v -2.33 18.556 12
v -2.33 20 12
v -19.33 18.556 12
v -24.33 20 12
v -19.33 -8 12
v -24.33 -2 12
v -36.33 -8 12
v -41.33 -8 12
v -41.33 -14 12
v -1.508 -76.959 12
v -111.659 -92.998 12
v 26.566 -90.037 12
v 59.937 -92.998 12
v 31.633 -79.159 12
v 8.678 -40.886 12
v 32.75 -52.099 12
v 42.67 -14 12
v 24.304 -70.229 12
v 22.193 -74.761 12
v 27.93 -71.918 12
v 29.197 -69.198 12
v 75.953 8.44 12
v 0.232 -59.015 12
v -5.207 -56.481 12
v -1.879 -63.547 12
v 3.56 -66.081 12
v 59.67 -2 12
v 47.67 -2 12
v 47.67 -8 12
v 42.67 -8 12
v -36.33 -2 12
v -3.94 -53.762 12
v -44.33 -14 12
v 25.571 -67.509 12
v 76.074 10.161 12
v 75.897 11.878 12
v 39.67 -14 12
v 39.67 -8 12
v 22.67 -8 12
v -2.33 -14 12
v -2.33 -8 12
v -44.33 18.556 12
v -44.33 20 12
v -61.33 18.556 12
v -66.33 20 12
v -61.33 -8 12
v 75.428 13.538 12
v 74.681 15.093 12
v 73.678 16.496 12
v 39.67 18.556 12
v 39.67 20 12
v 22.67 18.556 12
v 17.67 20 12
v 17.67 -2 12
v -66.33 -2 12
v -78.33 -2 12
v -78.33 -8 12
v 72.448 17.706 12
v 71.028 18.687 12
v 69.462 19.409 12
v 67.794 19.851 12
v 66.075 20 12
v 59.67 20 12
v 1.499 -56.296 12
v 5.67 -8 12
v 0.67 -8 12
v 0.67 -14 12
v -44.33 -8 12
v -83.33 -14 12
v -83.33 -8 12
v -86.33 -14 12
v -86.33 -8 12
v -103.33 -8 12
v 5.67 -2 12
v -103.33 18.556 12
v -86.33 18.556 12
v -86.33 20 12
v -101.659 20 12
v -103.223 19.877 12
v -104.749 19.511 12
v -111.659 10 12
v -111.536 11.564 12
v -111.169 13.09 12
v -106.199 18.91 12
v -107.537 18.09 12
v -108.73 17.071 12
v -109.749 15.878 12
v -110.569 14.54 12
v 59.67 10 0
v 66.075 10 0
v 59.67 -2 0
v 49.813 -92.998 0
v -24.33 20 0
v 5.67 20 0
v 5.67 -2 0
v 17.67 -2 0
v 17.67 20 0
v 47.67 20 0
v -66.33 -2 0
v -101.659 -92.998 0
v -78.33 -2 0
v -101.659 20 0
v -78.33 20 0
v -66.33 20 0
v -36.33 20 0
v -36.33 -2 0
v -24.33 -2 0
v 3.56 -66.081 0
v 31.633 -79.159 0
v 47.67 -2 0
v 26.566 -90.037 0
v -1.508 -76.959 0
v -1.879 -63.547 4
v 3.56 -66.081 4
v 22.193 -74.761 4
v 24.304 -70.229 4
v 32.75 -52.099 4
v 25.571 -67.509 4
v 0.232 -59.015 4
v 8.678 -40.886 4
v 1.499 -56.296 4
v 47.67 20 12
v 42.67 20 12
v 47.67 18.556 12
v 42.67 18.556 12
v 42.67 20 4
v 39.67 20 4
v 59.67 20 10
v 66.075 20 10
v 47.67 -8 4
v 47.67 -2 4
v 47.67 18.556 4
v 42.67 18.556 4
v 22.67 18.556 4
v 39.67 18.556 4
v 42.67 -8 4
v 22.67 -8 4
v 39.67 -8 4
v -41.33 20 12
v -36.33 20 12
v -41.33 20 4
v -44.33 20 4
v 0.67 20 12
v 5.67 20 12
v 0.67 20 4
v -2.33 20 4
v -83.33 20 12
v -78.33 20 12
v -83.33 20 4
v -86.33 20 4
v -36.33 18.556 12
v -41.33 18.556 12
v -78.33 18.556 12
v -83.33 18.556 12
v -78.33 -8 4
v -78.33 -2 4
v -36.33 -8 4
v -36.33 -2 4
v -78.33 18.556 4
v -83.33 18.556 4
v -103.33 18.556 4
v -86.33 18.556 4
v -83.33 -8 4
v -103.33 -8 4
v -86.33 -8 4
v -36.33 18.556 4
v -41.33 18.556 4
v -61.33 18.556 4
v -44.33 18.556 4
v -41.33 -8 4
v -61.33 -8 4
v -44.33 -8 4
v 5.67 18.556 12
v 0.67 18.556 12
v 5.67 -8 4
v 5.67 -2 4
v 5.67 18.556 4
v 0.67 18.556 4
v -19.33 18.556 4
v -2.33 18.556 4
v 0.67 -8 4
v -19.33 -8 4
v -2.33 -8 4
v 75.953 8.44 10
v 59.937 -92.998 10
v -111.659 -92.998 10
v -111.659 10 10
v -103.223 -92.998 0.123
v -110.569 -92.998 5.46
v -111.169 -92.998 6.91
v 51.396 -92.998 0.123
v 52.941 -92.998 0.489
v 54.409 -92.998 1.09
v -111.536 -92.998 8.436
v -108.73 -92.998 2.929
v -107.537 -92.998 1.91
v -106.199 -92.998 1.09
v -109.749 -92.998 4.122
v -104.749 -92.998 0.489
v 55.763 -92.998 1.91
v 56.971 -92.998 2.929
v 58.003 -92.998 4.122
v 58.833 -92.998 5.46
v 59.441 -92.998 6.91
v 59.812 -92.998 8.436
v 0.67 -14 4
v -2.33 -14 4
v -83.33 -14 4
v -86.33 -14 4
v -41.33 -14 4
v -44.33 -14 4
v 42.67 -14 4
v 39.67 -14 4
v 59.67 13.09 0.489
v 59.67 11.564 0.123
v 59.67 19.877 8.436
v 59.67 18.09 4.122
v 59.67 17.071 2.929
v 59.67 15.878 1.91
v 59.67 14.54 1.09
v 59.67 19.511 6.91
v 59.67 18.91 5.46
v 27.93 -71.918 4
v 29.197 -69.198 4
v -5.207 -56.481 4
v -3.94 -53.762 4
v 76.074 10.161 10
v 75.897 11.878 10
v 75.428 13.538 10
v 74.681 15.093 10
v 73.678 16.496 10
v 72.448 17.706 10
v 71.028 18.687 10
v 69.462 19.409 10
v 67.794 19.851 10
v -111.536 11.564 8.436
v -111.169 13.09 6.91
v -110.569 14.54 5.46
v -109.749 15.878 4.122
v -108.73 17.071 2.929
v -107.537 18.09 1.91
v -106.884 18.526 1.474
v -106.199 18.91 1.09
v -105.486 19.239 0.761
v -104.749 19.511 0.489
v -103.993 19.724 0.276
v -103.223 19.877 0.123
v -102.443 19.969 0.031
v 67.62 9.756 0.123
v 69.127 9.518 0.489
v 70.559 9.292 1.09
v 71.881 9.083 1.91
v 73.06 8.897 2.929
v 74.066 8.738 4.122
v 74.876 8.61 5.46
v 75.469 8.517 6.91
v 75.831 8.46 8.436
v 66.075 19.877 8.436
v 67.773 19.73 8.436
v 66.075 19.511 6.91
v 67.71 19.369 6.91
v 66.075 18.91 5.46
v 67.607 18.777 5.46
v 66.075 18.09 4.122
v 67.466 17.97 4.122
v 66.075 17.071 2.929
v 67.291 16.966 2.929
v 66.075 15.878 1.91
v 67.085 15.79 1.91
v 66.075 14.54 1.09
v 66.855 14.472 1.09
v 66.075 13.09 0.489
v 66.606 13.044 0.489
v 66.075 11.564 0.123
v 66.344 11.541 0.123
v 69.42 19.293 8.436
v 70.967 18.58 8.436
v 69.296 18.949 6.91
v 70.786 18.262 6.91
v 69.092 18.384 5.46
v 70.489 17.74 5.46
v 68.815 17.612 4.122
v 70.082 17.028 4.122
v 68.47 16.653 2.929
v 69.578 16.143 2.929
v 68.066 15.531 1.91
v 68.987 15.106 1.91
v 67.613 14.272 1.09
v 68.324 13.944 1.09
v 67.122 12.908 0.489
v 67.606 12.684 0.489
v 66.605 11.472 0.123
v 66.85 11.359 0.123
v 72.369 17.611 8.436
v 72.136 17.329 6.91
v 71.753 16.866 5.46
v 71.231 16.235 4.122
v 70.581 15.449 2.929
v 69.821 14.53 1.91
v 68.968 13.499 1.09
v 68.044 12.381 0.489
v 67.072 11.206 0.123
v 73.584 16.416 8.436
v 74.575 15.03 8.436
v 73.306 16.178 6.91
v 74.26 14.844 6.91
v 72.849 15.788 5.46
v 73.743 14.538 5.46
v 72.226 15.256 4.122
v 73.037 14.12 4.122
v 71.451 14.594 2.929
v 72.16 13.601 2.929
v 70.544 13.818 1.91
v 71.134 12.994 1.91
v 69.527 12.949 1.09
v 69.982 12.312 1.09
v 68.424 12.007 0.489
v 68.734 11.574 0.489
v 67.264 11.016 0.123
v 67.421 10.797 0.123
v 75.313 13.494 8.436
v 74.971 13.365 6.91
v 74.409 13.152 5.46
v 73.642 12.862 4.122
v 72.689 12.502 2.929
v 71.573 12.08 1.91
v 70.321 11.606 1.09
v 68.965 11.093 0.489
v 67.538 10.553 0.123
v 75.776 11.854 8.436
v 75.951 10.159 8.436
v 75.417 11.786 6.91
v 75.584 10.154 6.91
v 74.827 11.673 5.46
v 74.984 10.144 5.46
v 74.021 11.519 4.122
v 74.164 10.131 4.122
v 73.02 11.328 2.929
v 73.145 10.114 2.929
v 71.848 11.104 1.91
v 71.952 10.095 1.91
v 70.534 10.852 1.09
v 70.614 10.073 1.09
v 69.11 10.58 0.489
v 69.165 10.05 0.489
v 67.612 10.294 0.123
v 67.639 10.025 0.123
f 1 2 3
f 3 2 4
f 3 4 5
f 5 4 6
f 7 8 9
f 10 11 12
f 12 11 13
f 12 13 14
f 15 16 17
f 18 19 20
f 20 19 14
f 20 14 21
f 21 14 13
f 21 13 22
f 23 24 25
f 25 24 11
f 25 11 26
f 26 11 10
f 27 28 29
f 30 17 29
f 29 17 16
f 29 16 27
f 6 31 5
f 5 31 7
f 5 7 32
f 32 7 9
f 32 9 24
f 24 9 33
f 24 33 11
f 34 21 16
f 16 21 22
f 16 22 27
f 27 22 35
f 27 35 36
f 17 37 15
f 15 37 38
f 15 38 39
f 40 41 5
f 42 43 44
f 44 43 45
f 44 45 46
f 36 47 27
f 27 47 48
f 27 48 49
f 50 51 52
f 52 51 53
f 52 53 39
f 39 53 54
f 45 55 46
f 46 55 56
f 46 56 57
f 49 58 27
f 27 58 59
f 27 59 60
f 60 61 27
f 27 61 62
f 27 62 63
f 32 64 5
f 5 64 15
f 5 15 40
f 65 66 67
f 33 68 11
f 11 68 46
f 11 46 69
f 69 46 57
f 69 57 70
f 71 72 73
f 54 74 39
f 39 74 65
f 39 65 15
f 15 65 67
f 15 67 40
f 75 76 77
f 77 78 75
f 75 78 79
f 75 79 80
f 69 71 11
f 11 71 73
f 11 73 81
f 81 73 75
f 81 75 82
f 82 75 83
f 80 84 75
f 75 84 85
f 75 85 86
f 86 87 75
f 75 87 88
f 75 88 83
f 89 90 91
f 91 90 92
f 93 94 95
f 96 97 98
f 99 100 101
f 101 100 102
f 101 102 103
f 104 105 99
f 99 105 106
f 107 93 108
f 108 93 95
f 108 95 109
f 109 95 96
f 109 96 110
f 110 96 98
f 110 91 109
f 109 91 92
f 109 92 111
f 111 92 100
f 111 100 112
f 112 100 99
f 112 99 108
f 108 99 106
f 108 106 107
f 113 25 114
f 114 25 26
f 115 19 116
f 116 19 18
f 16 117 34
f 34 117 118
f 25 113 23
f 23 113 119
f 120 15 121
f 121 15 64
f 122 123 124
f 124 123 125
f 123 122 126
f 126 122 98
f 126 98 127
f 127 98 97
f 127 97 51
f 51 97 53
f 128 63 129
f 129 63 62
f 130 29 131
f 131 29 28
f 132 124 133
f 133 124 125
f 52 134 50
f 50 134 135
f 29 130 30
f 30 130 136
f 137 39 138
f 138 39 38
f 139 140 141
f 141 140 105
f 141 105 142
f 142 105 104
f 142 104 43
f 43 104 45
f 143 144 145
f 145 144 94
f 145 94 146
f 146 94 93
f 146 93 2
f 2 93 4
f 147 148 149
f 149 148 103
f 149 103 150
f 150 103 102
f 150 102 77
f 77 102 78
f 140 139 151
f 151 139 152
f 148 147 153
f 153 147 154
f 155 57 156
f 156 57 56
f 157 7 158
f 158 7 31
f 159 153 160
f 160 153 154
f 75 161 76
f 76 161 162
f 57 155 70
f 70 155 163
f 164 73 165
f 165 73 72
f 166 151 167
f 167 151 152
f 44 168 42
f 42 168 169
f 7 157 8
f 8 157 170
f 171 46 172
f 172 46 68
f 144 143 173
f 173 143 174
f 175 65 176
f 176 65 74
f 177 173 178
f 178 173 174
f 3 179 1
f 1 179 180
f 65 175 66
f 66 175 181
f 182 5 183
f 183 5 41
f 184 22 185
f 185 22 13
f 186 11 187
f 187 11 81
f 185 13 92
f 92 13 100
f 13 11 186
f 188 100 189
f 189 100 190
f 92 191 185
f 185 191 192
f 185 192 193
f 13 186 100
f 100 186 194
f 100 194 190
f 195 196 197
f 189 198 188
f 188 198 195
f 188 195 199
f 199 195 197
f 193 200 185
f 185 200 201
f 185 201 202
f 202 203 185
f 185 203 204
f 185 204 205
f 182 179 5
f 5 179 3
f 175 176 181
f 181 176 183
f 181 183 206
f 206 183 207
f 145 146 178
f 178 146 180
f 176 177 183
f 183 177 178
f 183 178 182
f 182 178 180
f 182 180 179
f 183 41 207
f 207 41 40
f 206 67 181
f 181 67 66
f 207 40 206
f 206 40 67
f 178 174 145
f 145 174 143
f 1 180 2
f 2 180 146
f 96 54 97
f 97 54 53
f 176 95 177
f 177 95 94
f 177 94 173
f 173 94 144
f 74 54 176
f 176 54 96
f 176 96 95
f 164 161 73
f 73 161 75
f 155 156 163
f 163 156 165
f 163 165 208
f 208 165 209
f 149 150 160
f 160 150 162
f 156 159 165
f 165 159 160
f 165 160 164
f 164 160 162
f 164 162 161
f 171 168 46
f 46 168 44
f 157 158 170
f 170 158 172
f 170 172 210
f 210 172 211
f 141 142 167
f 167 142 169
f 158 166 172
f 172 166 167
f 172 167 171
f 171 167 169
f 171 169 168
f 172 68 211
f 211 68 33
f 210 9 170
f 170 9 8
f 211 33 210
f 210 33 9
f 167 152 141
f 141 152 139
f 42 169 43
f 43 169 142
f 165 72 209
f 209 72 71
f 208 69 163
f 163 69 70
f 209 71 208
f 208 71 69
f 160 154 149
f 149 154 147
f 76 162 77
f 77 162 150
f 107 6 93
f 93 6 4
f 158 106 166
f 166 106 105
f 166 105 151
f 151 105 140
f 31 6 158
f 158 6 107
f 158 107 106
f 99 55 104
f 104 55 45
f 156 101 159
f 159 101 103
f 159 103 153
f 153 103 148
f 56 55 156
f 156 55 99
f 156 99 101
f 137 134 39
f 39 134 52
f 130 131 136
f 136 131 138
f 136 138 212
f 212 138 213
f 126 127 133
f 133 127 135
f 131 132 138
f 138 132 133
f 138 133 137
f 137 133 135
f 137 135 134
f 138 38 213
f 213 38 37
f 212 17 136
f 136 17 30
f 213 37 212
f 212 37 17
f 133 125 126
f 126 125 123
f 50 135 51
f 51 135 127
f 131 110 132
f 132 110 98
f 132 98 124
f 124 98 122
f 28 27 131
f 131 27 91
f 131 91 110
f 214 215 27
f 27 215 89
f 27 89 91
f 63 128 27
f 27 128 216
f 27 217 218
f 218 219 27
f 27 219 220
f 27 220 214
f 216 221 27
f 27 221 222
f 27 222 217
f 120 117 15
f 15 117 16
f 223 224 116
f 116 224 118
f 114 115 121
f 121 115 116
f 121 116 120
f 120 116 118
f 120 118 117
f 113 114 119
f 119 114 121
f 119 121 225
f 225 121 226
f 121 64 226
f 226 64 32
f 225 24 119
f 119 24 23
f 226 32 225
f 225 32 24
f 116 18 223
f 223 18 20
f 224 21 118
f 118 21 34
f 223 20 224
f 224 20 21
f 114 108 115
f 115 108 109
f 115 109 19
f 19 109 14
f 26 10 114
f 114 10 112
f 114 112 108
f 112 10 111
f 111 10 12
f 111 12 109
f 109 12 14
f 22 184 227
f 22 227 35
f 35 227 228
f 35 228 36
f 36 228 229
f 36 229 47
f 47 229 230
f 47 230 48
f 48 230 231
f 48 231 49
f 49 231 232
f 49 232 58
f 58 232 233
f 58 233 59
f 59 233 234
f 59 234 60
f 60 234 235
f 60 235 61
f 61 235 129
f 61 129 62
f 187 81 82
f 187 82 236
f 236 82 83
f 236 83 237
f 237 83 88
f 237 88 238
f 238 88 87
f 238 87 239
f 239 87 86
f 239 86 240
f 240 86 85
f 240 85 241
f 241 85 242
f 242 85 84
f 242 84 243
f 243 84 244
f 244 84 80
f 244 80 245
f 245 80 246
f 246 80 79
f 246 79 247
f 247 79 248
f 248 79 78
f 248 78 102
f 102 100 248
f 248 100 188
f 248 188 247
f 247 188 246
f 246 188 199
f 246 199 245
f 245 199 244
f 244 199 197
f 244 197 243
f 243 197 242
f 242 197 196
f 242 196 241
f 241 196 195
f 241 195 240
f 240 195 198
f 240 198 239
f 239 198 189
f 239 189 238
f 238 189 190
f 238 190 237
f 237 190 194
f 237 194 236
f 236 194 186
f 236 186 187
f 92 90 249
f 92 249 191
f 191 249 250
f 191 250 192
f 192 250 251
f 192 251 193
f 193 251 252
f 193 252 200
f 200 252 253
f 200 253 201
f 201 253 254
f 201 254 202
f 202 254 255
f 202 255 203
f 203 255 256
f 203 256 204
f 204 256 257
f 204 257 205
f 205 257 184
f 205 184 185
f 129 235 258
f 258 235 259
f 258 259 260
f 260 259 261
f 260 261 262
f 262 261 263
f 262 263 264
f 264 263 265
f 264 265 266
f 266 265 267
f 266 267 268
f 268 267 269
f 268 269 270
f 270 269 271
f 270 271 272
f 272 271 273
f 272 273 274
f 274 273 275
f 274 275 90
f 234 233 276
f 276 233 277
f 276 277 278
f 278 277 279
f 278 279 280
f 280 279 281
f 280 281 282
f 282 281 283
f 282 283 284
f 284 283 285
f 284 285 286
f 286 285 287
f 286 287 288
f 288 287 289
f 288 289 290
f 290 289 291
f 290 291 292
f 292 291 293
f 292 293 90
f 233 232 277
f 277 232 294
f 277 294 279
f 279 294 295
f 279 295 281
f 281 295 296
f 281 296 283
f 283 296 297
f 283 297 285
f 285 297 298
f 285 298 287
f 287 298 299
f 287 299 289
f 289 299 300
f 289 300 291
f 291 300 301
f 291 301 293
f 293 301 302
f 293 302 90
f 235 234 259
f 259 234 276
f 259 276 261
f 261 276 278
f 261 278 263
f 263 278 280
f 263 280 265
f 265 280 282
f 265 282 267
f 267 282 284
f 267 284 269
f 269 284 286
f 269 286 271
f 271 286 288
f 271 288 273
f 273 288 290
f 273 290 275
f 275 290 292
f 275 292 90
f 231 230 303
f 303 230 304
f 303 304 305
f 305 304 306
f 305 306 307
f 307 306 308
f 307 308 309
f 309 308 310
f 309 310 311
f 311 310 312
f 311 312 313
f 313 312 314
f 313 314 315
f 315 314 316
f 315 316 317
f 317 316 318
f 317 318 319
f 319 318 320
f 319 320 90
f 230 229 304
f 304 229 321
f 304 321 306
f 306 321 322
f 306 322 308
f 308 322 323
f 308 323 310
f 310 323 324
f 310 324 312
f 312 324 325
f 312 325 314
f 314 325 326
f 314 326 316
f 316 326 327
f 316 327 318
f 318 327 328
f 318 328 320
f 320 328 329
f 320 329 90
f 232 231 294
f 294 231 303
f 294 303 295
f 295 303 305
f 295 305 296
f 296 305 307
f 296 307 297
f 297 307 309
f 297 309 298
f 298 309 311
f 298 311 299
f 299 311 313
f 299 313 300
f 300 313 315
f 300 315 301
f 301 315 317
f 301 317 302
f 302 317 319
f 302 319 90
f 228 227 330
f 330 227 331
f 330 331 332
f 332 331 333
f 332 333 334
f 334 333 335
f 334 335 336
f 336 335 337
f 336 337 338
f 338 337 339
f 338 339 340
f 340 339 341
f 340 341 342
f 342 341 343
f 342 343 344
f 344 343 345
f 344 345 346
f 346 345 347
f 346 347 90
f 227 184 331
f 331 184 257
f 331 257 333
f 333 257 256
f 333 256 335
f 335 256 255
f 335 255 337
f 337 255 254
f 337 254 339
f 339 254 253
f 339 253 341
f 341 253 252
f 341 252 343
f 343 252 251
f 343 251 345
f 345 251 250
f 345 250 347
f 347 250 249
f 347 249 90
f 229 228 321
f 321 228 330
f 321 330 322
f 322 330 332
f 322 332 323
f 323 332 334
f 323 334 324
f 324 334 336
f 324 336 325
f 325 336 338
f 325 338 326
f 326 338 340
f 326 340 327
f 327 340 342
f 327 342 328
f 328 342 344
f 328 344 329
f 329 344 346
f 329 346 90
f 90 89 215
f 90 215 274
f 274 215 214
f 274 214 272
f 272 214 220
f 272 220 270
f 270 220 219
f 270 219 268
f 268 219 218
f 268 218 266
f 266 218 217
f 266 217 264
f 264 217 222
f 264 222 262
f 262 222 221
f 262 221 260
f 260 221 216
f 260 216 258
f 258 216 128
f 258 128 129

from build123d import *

# Parameters (mm, degrees)
BOSS_EXTRUDE1_DEPTH       = 12
SKETCH2_W                 = 25
SKETCH2_H                 = 26.555679241
CUT_EXTRUDE2_DEPTH        = 8
CUT_EXTRUDE8_START        = 4
SKETCH3_W                 = 3
SKETCH3_H                 = 36.555679241
CUT_EXTRUDE8_DEPTH        = 10
SKETCH5_W                 = 12
SKETCH5_H                 = 30.970366581
CUT_EXTRUDE10_DEPTH       = 18
LPATTERN1_COUNT           = 3
LPATTERN1_PITCH           = 42
LPATTERN2_COUNT           = 2
LPATTERN2_PITCH           = 42
CRVPATTERN1_START         = -70.397064899
CRVPATTERN1_OUTLINE_W     = 20.555679241
CRVPATTERN1_OUTLINE_H     = 8
CRVPATTERN1_DEPTH         = 37
CRVPATTERN1_2_DEPTH       = 12
CRVPATTERN1_START_2       = -58.397064899
CRVPATTERN1_3_OUTLINE_W   = 6
CRVPATTERN1_3_OUTLINE_H   = 8
CRVPATTERN1_3_DEPTH       = 25
CRVPATTERN1_START_3       = -53.397064899
CRVPATTERN1_4_OUTLINE_W   = 4
CRVPATTERN1_4_OUTLINE_H   = 8
CRVPATTERN1_4_OUTLINE_W_2 = 6
CRVPATTERN1_4_DEPTH       = 3
FILLET1_R                 = 10
FILLET2_R                 = 10
FILLET3_R                 = 10


# Read off the part's stored shape, not the designer's step: CrvPattern1
with BuildPart() as part:
    # Sketch1 → Boss-Extrude1 (new body)
    with BuildSketch(Plane.XY):
        Polygon((-111.658778955, 20), (77.777911134, 20), (59.936522952, -92.998049549), (-111.658778955, -92.998049549), align=None)
    extrude(amount=BOSS_EXTRUDE1_DEPTH)

    # Sketch2 → Cut-Extrude2 (cut)
    with BuildSketch(Plane.XY.offset(12)):
        with Locations((-6.829680892, 5.27783962)):
            Rectangle(SKETCH2_W, SKETCH2_H)
    cut_extrude2 = extrude(amount=-CUT_EXTRUDE2_DEPTH, mode=Mode.SUBTRACT)

    # Sketch3 → Cut-Extrude8 (cut)
    with BuildSketch(Plane.XY.offset(CUT_EXTRUDE8_START)):
        with Locations((-0.829680892, 4.27783962)):
            Rectangle(SKETCH3_W, SKETCH3_H)
    cut_extrude8 = extrude(amount=CUT_EXTRUDE8_DEPTH, mode=Mode.SUBTRACT)

    # Sketch5 → Cut-Extrude10 (cut)
    with BuildSketch(Plane.XY):
        with Locations((11.670319108, 13.485183291)):
            Rectangle(SKETCH5_W, SKETCH5_H)
    cut_extrude10 = extrude(amount=CUT_EXTRUDE10_DEPTH, mode=Mode.SUBTRACT)

    # LPattern1: Cut-Extrude2, Cut-Extrude8, Cut-Extrude10 ×3
    with Locations(*[(-i * LPATTERN1_PITCH, 0, 0) for i in range(1, LPATTERN1_COUNT)]):
        add(cut_extrude2, mode=Mode.SUBTRACT)
        add(cut_extrude8, mode=Mode.SUBTRACT)
        add(cut_extrude10, mode=Mode.SUBTRACT)

    # LPattern2: Cut-Extrude2, Cut-Extrude8, Cut-Extrude10 ×2
    with Locations(*[(i * LPATTERN2_PITCH, 0, 0) for i in range(1, LPATTERN2_COUNT)]):
        add(cut_extrude2, mode=Mode.SUBTRACT)
        add(cut_extrude8, mode=Mode.SUBTRACT)
        add(cut_extrude10, mode=Mode.SUBTRACT)

    # CrvPattern1 outline → CrvPattern1 (cut)
    with BuildSketch(Plane(origin=(0, 0, 0), x_dir=(0.906467226735628, -0.42227617367573506, 0), z_dir=(0.42227617367573506, 0.9064672267356281, 0)).offset(CRVPATTERN1_START)):
        with Locations((41.40893435, -8)):
            Rectangle(CRVPATTERN1_OUTLINE_W, CRVPATTERN1_OUTLINE_H)
    extrude(amount=CRVPATTERN1_DEPTH, mode=Mode.SUBTRACT)

    # CrvPattern1 2 outline → CrvPattern1 2 (cut)
    with BuildSketch(Plane(origin=(0, 0, 0), x_dir=(0.906467226735628, -0.42227617367573506, 0), z_dir=(0.42227617367573506, 0.9064672267356281, 0)).offset(CRVPATTERN1_START)):
        Polygon((51.68677397, -4), (51.68677397, -12), (62.10146131, -12), (62.10146131, 0), (31.131094729, 0), (31.131094729, -4), align=None)
    extrude(amount=CRVPATTERN1_2_DEPTH, mode=Mode.SUBTRACT)

    # CrvPattern1 3 outline → CrvPattern1 3 (cut)
    with BuildSketch(Plane(origin=(0, 0, 0), x_dir=(0.906467226735628, -0.42227617367573506, 0), z_dir=(0.42227617367573506, 0.9064672267356281, 0)).offset(CRVPATTERN1_START_2)):
        with Locations((28.131094729, -8)):
            Rectangle(CRVPATTERN1_3_OUTLINE_W, CRVPATTERN1_3_OUTLINE_H)
    extrude(amount=CRVPATTERN1_3_DEPTH, mode=Mode.SUBTRACT)

    # CrvPattern1 4 outline → CrvPattern1 4 (cut)
    with BuildSketch(Plane(origin=(0, 0, 0), x_dir=(0.906467226735628, -0.42227617367573506, 0), z_dir=(0.42227617367573506, 0.9064672267356281, 0)).offset(CRVPATTERN1_START_3)):
        with Locations((53.68677397, -8)):
            Rectangle(CRVPATTERN1_4_OUTLINE_W, CRVPATTERN1_4_OUTLINE_H)
        with Locations((22.131094729, -8)):
            Rectangle(CRVPATTERN1_4_OUTLINE_W_2, CRVPATTERN1_4_OUTLINE_H)
    extrude(amount=CRVPATTERN1_4_DEPTH, mode=Mode.SUBTRACT)

    # Fillet1
    fillet1_edges = [part.edges().sort_by_distance(p)[0] for p in [
        (77.777911134, 20, 6),
    ]]
    fillet(fillet1_edges, radius=FILLET1_R)

    # Fillet2
    fillet2_edges = [part.edges().sort_by_distance(p)[0] for p in [
        (-111.658778955, -36.499024774, 0),
        (-111.658778955, 20, 6),
    ]]
    fillet(fillet2_edges, radius=FILLET2_R)

    # Fillet3
    fillet3_edges = [part.edges().sort_by_distance(p)[0] for p in [
        (62.872719189, 20, 0),
        (73.677615847, 16.496310167, 0),
        (67.944638692, -42.278820195, 0),
    ]]
    fillet(fillet3_edges, radius=FILLET3_R)


solid = part.part
